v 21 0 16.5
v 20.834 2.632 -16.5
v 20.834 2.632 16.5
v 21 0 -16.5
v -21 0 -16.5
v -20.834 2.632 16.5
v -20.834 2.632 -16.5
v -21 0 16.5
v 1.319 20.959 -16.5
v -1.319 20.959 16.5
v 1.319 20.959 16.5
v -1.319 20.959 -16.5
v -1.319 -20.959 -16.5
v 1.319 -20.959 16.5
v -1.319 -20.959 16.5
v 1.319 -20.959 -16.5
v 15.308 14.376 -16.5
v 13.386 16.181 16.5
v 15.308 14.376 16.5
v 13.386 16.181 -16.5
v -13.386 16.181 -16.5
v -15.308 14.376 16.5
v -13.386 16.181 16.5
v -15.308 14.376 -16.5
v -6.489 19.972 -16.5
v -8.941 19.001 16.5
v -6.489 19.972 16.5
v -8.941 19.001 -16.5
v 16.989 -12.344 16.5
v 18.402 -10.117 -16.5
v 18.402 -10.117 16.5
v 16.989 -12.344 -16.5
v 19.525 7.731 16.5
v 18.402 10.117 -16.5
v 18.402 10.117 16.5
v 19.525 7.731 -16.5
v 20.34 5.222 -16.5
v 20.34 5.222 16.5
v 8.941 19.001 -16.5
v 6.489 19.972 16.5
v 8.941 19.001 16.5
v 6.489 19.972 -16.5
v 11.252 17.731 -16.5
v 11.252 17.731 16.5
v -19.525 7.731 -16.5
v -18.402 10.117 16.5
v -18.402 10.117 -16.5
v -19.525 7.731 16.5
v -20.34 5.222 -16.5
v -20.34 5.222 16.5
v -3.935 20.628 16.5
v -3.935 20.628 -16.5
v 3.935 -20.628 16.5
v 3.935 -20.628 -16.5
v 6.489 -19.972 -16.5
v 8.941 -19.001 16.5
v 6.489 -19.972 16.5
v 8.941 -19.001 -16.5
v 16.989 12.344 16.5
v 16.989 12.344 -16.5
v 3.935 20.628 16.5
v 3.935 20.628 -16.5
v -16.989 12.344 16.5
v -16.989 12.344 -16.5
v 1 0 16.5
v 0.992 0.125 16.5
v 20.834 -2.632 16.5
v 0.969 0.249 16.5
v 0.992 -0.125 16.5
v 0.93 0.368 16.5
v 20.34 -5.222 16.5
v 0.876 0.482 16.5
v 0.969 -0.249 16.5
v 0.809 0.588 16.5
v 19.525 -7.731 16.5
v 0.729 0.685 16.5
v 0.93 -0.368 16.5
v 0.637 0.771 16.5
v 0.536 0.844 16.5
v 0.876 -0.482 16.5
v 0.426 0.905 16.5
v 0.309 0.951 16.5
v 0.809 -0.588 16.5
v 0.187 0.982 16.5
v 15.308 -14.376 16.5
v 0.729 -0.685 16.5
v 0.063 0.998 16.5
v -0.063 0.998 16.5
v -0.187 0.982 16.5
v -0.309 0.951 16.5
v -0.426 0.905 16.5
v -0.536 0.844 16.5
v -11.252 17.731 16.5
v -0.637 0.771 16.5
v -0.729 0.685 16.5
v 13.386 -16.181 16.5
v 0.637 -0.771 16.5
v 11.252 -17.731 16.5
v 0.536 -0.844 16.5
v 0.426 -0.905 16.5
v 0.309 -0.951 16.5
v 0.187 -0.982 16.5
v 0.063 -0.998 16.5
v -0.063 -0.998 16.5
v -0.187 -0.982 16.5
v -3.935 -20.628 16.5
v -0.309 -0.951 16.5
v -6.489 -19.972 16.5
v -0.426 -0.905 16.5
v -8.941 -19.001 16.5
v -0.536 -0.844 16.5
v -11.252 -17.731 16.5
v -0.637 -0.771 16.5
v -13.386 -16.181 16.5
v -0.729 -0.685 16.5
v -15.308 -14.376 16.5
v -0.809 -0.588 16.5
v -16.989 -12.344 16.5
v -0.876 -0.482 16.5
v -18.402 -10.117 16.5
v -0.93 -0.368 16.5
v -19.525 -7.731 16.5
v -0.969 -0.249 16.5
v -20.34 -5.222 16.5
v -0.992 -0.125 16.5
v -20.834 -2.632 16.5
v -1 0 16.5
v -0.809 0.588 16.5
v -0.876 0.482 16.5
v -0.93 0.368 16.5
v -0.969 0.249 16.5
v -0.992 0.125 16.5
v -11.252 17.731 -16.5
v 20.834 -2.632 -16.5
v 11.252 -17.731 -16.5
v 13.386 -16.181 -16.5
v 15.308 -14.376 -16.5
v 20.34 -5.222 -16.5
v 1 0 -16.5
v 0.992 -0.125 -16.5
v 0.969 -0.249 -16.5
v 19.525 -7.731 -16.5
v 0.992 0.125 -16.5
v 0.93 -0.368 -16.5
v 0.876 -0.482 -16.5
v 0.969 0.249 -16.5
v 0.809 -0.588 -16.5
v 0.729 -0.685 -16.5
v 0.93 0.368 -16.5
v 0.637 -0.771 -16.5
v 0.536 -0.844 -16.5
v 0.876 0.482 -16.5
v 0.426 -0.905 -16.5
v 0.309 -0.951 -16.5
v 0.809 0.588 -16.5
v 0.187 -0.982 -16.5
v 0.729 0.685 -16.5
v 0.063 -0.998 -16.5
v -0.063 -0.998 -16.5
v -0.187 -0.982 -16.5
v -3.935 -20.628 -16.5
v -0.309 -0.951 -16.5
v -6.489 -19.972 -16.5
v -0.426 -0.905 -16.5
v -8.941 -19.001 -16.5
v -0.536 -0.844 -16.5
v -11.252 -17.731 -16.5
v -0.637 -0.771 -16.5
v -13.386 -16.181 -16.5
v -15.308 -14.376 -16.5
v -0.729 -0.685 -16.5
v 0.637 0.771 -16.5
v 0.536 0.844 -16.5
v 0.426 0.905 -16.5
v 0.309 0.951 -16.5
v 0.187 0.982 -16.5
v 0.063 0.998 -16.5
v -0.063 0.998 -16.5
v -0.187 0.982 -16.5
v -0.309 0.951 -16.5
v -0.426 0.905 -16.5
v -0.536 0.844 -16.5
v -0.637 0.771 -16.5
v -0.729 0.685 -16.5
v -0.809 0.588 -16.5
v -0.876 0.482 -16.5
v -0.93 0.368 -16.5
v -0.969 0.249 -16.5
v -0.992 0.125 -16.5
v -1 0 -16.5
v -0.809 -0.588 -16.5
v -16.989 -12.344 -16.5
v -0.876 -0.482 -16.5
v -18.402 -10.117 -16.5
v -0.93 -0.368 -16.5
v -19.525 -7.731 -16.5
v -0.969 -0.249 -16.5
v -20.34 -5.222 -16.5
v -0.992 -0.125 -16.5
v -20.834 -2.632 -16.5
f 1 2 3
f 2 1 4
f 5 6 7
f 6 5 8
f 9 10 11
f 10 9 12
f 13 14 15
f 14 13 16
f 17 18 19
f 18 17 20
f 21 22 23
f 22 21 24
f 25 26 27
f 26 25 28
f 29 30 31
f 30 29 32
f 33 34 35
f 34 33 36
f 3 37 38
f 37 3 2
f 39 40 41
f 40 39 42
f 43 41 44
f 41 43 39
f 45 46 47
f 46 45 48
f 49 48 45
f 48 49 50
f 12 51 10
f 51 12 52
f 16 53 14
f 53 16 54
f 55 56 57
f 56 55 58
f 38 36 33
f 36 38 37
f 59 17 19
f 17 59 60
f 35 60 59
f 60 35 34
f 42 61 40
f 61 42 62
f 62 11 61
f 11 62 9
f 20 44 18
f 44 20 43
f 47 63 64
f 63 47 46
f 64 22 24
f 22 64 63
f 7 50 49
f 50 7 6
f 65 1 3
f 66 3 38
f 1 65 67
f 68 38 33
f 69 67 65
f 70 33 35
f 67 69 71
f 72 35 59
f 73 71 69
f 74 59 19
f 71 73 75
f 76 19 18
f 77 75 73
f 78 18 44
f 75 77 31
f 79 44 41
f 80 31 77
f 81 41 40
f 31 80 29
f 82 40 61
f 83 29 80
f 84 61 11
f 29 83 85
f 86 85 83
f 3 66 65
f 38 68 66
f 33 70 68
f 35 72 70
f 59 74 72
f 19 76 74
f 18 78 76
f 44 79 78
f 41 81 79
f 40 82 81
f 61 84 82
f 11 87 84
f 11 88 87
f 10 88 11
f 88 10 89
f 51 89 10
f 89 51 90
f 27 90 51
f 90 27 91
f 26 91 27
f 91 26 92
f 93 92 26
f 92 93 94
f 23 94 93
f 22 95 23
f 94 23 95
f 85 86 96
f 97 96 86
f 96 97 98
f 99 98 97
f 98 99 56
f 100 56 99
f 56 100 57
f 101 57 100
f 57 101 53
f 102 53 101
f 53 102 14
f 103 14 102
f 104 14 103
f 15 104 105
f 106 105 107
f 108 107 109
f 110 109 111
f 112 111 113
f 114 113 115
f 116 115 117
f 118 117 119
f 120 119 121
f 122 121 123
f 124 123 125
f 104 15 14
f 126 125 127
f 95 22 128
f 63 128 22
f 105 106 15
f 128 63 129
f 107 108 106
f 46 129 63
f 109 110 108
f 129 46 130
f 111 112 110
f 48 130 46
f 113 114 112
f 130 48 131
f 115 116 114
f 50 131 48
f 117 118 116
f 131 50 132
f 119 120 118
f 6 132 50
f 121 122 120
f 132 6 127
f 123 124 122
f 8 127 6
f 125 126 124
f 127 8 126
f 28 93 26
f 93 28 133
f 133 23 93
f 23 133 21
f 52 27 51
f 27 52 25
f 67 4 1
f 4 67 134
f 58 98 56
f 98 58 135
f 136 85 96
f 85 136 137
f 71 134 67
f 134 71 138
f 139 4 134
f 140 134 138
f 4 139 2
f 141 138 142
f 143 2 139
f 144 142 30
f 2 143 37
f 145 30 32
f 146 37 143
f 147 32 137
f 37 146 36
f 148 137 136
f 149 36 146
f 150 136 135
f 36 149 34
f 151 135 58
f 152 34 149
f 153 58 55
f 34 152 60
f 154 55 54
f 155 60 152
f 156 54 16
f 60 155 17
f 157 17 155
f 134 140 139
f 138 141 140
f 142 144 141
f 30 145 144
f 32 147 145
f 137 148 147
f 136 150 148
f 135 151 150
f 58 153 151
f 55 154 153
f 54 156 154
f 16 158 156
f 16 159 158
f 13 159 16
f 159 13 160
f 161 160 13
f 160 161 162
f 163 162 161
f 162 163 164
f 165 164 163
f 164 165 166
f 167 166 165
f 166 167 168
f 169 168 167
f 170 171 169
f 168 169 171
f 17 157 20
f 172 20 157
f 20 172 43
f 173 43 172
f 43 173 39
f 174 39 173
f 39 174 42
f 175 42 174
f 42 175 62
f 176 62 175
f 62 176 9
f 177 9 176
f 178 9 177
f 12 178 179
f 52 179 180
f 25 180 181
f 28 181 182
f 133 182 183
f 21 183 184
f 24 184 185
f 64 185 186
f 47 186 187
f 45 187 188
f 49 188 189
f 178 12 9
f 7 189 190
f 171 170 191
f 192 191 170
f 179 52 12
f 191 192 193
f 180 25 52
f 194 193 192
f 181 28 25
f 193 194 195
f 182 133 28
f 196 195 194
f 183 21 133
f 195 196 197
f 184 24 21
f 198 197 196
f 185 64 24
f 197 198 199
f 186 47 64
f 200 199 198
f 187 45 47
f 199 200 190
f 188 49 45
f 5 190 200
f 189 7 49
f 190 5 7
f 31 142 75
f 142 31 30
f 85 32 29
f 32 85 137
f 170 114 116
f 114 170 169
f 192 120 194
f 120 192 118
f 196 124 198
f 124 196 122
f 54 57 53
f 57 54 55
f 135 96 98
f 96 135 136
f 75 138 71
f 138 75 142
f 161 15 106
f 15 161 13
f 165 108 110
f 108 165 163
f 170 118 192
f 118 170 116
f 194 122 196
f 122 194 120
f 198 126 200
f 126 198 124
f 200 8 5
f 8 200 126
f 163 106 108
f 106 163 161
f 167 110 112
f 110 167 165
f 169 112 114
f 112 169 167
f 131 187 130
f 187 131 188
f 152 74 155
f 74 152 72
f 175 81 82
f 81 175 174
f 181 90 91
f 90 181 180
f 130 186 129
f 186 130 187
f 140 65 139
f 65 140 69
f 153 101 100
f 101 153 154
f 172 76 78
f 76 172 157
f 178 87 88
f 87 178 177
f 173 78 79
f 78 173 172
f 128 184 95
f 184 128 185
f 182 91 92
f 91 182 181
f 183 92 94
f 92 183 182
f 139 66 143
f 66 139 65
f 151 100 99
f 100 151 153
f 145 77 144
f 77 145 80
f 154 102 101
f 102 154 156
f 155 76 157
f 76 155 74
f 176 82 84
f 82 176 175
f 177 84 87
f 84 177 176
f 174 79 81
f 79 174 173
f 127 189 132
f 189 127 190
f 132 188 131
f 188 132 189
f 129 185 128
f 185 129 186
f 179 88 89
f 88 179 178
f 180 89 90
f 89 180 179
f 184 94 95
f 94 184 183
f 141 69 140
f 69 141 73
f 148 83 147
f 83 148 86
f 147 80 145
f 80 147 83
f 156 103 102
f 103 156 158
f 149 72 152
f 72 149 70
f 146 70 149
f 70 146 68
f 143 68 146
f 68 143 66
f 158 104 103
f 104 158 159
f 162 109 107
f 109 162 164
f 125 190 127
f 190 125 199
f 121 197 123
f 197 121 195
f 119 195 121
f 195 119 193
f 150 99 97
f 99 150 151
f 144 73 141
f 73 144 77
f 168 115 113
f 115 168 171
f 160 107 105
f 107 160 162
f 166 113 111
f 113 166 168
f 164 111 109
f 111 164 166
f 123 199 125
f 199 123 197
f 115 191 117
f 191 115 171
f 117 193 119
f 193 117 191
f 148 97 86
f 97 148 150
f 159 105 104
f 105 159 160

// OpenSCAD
$fn = 50;


difference() {
	union() {
		translate(v = [0, 0, -16.5000000000]) {
			cylinder(h = 33, r = 21.0000000000);
		}
	}
	union() {
		translate(v = [0, 0, -100.0000000000]) {
			cylinder(h = 200, r = 1.0000000000);
		}
	}
}
